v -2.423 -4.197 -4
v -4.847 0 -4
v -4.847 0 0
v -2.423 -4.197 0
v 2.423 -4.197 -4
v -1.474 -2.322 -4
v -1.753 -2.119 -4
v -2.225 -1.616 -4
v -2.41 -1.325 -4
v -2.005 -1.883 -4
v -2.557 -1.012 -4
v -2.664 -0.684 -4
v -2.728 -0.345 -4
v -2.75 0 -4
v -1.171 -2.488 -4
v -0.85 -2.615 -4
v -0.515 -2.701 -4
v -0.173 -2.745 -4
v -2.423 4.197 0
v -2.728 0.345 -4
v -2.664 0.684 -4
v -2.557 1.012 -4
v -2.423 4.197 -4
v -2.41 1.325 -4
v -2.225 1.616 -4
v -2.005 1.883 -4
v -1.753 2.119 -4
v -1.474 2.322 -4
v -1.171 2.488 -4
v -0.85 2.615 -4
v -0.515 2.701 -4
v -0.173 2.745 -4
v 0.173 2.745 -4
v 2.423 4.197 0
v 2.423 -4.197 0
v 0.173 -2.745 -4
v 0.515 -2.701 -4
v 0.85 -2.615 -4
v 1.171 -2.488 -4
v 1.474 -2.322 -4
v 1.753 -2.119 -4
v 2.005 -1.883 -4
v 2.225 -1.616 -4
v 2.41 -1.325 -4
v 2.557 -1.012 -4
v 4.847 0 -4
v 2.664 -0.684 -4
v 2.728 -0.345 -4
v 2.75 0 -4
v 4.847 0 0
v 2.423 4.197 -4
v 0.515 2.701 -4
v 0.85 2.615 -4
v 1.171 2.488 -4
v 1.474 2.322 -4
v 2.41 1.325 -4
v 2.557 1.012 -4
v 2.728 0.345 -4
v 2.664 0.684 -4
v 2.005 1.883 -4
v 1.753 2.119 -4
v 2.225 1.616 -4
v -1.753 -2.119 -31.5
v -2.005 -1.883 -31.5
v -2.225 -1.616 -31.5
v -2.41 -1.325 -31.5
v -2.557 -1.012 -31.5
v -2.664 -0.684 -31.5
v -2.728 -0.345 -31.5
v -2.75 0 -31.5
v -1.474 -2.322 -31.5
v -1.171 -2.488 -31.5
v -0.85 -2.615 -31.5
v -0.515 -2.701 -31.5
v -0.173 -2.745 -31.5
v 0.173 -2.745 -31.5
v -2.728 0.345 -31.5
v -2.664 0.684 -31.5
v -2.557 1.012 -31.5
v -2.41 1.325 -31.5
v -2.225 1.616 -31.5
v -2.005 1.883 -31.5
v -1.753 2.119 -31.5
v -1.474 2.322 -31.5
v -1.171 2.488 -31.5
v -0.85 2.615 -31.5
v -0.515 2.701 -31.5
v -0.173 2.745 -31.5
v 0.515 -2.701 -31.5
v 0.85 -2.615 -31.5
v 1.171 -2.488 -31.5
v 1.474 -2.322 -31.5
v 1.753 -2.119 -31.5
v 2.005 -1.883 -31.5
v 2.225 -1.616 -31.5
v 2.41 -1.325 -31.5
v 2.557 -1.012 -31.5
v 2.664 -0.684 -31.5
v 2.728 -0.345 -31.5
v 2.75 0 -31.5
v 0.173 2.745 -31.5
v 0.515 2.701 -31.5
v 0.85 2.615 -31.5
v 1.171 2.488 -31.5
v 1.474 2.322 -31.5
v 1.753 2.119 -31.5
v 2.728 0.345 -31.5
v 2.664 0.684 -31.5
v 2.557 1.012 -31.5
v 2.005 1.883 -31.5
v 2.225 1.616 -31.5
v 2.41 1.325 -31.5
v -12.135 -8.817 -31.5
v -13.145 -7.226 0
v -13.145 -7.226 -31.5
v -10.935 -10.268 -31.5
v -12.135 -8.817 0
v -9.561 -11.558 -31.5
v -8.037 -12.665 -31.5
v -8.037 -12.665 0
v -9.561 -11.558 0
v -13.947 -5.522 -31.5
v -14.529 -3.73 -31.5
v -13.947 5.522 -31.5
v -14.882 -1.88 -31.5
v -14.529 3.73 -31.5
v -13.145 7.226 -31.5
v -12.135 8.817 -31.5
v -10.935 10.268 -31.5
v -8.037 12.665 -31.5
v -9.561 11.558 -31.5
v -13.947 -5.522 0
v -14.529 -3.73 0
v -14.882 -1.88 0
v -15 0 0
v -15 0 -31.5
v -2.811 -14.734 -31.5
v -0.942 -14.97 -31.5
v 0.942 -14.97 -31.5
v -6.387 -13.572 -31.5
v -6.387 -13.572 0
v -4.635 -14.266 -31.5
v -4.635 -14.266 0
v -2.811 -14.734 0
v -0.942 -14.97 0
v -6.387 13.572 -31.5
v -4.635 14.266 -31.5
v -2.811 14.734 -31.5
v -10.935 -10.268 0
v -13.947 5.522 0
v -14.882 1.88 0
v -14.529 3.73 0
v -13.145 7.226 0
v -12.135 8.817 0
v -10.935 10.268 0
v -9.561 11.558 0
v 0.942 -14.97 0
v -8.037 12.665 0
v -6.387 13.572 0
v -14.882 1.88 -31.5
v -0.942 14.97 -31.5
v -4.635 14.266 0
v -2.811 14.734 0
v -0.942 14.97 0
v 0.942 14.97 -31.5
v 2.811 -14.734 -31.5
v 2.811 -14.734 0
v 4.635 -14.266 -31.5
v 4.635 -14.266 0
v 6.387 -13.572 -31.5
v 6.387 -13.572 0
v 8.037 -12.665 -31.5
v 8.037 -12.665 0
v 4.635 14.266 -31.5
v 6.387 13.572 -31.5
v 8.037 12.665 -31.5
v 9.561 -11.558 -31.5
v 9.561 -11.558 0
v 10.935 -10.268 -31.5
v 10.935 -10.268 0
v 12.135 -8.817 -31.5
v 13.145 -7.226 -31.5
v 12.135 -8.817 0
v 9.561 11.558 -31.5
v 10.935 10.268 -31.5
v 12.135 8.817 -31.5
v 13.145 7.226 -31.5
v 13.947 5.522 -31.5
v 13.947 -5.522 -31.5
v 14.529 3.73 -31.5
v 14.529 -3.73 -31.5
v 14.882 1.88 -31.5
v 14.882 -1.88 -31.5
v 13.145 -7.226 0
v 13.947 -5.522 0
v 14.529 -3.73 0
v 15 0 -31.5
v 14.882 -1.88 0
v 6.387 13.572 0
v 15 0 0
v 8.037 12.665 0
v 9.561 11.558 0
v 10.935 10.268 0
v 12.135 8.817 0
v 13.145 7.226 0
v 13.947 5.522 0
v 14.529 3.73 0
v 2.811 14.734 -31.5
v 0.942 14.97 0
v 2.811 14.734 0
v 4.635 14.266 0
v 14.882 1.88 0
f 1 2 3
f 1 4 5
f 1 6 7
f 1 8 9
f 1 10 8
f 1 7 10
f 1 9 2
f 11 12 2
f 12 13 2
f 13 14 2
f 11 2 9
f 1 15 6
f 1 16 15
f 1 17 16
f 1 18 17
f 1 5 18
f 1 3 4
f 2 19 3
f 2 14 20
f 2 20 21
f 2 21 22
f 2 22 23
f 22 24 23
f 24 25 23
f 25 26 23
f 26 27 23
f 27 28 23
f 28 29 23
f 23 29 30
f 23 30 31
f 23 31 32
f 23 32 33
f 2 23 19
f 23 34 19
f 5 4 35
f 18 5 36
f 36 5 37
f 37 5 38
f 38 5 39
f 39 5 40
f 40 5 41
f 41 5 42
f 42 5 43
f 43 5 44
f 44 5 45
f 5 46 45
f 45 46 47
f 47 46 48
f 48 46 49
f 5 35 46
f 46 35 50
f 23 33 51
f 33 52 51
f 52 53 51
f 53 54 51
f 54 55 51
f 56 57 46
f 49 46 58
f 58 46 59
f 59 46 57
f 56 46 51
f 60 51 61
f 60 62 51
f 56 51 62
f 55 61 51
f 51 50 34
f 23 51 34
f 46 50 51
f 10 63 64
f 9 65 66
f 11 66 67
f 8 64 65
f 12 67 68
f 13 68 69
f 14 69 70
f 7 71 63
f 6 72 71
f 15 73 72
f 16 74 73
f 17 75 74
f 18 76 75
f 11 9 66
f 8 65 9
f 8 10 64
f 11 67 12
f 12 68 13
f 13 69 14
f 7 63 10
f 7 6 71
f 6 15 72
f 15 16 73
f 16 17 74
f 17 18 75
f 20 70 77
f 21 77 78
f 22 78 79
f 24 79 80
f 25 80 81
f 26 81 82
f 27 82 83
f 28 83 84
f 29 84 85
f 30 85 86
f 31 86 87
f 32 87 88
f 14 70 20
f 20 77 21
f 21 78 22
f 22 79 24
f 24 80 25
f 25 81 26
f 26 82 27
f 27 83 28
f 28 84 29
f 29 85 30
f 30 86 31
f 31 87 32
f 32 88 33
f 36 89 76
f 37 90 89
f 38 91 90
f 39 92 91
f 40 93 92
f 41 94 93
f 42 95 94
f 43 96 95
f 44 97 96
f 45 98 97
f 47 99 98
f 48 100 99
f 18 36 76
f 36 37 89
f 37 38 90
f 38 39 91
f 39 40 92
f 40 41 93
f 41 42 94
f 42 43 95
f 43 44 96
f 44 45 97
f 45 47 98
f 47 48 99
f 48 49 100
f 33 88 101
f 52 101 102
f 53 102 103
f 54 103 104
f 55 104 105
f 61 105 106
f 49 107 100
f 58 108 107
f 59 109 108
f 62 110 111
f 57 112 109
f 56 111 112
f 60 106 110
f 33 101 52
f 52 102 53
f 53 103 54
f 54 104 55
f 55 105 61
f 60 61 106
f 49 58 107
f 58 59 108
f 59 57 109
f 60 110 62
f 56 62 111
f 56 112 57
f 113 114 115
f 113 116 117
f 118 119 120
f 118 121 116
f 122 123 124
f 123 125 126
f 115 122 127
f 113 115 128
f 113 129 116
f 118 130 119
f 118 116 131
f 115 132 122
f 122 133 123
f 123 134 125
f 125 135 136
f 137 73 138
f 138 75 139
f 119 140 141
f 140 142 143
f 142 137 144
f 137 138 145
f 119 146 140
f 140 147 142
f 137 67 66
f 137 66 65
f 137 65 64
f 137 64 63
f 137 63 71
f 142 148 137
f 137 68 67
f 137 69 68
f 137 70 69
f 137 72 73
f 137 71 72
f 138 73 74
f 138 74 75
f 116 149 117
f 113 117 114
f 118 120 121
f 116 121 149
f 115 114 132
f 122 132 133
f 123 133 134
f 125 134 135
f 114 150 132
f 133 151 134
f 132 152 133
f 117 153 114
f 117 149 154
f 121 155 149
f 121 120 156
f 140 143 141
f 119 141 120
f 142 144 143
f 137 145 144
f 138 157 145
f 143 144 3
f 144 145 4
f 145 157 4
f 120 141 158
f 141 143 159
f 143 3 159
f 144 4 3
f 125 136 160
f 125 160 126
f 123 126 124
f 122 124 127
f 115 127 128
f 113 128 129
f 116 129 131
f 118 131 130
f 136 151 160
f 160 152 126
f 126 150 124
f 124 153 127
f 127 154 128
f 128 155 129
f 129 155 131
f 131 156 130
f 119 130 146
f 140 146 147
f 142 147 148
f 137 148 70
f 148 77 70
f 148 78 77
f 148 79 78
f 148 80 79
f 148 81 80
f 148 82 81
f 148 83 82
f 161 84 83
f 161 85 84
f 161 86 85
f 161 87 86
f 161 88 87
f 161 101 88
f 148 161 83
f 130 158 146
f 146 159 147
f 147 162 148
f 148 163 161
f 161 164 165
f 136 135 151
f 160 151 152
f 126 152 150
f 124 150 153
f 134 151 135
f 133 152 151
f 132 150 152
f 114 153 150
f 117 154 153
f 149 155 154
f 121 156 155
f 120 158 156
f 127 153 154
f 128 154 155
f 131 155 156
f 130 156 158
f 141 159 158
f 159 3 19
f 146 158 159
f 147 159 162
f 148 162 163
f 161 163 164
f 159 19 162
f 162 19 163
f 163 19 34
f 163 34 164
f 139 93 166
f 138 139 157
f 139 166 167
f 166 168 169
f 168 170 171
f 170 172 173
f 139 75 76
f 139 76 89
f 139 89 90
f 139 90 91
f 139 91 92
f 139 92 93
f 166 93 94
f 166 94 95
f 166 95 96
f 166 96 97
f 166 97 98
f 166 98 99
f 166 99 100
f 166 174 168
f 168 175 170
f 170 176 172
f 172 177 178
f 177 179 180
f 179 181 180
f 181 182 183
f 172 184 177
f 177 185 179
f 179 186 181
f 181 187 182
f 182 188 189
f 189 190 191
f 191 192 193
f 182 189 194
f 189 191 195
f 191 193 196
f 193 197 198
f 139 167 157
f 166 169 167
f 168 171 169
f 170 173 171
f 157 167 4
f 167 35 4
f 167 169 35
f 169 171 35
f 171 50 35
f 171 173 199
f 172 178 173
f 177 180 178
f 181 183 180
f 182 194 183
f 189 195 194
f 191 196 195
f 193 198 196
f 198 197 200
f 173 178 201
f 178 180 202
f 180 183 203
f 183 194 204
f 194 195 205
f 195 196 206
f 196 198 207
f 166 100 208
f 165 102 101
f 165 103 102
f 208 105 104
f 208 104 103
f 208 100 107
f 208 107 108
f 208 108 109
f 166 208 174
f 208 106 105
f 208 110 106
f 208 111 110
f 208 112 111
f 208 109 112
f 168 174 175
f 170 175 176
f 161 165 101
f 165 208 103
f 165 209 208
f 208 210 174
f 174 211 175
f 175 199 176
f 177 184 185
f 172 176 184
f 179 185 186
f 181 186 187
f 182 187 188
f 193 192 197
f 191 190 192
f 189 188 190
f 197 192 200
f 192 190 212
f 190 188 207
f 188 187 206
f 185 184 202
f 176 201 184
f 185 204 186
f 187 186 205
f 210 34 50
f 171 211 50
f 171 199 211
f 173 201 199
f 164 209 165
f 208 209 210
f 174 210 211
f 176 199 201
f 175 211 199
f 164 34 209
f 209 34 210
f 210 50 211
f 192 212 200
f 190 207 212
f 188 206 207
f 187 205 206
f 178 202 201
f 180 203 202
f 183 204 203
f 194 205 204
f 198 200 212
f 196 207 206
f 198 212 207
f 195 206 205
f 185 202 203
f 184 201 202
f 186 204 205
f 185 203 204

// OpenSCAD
$fn = 50;

difference() {
	union() {
		translate(v = [0, 0, -31.5]) {
			cylinder(h = 31.5, r = 15.0);
		}
	}
	union() {
		translate(v = [0, 0, 0]) {
			rotate(a = [0, 0, 0]) {
				difference() {
					union() {
						translate(v = [0, 0, -4]) {
							linear_extrude(height = 4) {
								polygon(points = [[4.8468, 0.0], [2.4234000000000004, 4.197451927062417], [-2.423399999999999, 4.197451927062417], [-4.8468, 5.935618106107392e-16], [-2.423400000000002, -4.197451927062416], [2.423399999999997, -4.197451927062419]]);
							}
						}
					}
					union();
				}
			}
		}
		#translate(v = [0, 0, -100.0]) {
			cylinder(h = 200, r = 2.75);
		}
	}
}
